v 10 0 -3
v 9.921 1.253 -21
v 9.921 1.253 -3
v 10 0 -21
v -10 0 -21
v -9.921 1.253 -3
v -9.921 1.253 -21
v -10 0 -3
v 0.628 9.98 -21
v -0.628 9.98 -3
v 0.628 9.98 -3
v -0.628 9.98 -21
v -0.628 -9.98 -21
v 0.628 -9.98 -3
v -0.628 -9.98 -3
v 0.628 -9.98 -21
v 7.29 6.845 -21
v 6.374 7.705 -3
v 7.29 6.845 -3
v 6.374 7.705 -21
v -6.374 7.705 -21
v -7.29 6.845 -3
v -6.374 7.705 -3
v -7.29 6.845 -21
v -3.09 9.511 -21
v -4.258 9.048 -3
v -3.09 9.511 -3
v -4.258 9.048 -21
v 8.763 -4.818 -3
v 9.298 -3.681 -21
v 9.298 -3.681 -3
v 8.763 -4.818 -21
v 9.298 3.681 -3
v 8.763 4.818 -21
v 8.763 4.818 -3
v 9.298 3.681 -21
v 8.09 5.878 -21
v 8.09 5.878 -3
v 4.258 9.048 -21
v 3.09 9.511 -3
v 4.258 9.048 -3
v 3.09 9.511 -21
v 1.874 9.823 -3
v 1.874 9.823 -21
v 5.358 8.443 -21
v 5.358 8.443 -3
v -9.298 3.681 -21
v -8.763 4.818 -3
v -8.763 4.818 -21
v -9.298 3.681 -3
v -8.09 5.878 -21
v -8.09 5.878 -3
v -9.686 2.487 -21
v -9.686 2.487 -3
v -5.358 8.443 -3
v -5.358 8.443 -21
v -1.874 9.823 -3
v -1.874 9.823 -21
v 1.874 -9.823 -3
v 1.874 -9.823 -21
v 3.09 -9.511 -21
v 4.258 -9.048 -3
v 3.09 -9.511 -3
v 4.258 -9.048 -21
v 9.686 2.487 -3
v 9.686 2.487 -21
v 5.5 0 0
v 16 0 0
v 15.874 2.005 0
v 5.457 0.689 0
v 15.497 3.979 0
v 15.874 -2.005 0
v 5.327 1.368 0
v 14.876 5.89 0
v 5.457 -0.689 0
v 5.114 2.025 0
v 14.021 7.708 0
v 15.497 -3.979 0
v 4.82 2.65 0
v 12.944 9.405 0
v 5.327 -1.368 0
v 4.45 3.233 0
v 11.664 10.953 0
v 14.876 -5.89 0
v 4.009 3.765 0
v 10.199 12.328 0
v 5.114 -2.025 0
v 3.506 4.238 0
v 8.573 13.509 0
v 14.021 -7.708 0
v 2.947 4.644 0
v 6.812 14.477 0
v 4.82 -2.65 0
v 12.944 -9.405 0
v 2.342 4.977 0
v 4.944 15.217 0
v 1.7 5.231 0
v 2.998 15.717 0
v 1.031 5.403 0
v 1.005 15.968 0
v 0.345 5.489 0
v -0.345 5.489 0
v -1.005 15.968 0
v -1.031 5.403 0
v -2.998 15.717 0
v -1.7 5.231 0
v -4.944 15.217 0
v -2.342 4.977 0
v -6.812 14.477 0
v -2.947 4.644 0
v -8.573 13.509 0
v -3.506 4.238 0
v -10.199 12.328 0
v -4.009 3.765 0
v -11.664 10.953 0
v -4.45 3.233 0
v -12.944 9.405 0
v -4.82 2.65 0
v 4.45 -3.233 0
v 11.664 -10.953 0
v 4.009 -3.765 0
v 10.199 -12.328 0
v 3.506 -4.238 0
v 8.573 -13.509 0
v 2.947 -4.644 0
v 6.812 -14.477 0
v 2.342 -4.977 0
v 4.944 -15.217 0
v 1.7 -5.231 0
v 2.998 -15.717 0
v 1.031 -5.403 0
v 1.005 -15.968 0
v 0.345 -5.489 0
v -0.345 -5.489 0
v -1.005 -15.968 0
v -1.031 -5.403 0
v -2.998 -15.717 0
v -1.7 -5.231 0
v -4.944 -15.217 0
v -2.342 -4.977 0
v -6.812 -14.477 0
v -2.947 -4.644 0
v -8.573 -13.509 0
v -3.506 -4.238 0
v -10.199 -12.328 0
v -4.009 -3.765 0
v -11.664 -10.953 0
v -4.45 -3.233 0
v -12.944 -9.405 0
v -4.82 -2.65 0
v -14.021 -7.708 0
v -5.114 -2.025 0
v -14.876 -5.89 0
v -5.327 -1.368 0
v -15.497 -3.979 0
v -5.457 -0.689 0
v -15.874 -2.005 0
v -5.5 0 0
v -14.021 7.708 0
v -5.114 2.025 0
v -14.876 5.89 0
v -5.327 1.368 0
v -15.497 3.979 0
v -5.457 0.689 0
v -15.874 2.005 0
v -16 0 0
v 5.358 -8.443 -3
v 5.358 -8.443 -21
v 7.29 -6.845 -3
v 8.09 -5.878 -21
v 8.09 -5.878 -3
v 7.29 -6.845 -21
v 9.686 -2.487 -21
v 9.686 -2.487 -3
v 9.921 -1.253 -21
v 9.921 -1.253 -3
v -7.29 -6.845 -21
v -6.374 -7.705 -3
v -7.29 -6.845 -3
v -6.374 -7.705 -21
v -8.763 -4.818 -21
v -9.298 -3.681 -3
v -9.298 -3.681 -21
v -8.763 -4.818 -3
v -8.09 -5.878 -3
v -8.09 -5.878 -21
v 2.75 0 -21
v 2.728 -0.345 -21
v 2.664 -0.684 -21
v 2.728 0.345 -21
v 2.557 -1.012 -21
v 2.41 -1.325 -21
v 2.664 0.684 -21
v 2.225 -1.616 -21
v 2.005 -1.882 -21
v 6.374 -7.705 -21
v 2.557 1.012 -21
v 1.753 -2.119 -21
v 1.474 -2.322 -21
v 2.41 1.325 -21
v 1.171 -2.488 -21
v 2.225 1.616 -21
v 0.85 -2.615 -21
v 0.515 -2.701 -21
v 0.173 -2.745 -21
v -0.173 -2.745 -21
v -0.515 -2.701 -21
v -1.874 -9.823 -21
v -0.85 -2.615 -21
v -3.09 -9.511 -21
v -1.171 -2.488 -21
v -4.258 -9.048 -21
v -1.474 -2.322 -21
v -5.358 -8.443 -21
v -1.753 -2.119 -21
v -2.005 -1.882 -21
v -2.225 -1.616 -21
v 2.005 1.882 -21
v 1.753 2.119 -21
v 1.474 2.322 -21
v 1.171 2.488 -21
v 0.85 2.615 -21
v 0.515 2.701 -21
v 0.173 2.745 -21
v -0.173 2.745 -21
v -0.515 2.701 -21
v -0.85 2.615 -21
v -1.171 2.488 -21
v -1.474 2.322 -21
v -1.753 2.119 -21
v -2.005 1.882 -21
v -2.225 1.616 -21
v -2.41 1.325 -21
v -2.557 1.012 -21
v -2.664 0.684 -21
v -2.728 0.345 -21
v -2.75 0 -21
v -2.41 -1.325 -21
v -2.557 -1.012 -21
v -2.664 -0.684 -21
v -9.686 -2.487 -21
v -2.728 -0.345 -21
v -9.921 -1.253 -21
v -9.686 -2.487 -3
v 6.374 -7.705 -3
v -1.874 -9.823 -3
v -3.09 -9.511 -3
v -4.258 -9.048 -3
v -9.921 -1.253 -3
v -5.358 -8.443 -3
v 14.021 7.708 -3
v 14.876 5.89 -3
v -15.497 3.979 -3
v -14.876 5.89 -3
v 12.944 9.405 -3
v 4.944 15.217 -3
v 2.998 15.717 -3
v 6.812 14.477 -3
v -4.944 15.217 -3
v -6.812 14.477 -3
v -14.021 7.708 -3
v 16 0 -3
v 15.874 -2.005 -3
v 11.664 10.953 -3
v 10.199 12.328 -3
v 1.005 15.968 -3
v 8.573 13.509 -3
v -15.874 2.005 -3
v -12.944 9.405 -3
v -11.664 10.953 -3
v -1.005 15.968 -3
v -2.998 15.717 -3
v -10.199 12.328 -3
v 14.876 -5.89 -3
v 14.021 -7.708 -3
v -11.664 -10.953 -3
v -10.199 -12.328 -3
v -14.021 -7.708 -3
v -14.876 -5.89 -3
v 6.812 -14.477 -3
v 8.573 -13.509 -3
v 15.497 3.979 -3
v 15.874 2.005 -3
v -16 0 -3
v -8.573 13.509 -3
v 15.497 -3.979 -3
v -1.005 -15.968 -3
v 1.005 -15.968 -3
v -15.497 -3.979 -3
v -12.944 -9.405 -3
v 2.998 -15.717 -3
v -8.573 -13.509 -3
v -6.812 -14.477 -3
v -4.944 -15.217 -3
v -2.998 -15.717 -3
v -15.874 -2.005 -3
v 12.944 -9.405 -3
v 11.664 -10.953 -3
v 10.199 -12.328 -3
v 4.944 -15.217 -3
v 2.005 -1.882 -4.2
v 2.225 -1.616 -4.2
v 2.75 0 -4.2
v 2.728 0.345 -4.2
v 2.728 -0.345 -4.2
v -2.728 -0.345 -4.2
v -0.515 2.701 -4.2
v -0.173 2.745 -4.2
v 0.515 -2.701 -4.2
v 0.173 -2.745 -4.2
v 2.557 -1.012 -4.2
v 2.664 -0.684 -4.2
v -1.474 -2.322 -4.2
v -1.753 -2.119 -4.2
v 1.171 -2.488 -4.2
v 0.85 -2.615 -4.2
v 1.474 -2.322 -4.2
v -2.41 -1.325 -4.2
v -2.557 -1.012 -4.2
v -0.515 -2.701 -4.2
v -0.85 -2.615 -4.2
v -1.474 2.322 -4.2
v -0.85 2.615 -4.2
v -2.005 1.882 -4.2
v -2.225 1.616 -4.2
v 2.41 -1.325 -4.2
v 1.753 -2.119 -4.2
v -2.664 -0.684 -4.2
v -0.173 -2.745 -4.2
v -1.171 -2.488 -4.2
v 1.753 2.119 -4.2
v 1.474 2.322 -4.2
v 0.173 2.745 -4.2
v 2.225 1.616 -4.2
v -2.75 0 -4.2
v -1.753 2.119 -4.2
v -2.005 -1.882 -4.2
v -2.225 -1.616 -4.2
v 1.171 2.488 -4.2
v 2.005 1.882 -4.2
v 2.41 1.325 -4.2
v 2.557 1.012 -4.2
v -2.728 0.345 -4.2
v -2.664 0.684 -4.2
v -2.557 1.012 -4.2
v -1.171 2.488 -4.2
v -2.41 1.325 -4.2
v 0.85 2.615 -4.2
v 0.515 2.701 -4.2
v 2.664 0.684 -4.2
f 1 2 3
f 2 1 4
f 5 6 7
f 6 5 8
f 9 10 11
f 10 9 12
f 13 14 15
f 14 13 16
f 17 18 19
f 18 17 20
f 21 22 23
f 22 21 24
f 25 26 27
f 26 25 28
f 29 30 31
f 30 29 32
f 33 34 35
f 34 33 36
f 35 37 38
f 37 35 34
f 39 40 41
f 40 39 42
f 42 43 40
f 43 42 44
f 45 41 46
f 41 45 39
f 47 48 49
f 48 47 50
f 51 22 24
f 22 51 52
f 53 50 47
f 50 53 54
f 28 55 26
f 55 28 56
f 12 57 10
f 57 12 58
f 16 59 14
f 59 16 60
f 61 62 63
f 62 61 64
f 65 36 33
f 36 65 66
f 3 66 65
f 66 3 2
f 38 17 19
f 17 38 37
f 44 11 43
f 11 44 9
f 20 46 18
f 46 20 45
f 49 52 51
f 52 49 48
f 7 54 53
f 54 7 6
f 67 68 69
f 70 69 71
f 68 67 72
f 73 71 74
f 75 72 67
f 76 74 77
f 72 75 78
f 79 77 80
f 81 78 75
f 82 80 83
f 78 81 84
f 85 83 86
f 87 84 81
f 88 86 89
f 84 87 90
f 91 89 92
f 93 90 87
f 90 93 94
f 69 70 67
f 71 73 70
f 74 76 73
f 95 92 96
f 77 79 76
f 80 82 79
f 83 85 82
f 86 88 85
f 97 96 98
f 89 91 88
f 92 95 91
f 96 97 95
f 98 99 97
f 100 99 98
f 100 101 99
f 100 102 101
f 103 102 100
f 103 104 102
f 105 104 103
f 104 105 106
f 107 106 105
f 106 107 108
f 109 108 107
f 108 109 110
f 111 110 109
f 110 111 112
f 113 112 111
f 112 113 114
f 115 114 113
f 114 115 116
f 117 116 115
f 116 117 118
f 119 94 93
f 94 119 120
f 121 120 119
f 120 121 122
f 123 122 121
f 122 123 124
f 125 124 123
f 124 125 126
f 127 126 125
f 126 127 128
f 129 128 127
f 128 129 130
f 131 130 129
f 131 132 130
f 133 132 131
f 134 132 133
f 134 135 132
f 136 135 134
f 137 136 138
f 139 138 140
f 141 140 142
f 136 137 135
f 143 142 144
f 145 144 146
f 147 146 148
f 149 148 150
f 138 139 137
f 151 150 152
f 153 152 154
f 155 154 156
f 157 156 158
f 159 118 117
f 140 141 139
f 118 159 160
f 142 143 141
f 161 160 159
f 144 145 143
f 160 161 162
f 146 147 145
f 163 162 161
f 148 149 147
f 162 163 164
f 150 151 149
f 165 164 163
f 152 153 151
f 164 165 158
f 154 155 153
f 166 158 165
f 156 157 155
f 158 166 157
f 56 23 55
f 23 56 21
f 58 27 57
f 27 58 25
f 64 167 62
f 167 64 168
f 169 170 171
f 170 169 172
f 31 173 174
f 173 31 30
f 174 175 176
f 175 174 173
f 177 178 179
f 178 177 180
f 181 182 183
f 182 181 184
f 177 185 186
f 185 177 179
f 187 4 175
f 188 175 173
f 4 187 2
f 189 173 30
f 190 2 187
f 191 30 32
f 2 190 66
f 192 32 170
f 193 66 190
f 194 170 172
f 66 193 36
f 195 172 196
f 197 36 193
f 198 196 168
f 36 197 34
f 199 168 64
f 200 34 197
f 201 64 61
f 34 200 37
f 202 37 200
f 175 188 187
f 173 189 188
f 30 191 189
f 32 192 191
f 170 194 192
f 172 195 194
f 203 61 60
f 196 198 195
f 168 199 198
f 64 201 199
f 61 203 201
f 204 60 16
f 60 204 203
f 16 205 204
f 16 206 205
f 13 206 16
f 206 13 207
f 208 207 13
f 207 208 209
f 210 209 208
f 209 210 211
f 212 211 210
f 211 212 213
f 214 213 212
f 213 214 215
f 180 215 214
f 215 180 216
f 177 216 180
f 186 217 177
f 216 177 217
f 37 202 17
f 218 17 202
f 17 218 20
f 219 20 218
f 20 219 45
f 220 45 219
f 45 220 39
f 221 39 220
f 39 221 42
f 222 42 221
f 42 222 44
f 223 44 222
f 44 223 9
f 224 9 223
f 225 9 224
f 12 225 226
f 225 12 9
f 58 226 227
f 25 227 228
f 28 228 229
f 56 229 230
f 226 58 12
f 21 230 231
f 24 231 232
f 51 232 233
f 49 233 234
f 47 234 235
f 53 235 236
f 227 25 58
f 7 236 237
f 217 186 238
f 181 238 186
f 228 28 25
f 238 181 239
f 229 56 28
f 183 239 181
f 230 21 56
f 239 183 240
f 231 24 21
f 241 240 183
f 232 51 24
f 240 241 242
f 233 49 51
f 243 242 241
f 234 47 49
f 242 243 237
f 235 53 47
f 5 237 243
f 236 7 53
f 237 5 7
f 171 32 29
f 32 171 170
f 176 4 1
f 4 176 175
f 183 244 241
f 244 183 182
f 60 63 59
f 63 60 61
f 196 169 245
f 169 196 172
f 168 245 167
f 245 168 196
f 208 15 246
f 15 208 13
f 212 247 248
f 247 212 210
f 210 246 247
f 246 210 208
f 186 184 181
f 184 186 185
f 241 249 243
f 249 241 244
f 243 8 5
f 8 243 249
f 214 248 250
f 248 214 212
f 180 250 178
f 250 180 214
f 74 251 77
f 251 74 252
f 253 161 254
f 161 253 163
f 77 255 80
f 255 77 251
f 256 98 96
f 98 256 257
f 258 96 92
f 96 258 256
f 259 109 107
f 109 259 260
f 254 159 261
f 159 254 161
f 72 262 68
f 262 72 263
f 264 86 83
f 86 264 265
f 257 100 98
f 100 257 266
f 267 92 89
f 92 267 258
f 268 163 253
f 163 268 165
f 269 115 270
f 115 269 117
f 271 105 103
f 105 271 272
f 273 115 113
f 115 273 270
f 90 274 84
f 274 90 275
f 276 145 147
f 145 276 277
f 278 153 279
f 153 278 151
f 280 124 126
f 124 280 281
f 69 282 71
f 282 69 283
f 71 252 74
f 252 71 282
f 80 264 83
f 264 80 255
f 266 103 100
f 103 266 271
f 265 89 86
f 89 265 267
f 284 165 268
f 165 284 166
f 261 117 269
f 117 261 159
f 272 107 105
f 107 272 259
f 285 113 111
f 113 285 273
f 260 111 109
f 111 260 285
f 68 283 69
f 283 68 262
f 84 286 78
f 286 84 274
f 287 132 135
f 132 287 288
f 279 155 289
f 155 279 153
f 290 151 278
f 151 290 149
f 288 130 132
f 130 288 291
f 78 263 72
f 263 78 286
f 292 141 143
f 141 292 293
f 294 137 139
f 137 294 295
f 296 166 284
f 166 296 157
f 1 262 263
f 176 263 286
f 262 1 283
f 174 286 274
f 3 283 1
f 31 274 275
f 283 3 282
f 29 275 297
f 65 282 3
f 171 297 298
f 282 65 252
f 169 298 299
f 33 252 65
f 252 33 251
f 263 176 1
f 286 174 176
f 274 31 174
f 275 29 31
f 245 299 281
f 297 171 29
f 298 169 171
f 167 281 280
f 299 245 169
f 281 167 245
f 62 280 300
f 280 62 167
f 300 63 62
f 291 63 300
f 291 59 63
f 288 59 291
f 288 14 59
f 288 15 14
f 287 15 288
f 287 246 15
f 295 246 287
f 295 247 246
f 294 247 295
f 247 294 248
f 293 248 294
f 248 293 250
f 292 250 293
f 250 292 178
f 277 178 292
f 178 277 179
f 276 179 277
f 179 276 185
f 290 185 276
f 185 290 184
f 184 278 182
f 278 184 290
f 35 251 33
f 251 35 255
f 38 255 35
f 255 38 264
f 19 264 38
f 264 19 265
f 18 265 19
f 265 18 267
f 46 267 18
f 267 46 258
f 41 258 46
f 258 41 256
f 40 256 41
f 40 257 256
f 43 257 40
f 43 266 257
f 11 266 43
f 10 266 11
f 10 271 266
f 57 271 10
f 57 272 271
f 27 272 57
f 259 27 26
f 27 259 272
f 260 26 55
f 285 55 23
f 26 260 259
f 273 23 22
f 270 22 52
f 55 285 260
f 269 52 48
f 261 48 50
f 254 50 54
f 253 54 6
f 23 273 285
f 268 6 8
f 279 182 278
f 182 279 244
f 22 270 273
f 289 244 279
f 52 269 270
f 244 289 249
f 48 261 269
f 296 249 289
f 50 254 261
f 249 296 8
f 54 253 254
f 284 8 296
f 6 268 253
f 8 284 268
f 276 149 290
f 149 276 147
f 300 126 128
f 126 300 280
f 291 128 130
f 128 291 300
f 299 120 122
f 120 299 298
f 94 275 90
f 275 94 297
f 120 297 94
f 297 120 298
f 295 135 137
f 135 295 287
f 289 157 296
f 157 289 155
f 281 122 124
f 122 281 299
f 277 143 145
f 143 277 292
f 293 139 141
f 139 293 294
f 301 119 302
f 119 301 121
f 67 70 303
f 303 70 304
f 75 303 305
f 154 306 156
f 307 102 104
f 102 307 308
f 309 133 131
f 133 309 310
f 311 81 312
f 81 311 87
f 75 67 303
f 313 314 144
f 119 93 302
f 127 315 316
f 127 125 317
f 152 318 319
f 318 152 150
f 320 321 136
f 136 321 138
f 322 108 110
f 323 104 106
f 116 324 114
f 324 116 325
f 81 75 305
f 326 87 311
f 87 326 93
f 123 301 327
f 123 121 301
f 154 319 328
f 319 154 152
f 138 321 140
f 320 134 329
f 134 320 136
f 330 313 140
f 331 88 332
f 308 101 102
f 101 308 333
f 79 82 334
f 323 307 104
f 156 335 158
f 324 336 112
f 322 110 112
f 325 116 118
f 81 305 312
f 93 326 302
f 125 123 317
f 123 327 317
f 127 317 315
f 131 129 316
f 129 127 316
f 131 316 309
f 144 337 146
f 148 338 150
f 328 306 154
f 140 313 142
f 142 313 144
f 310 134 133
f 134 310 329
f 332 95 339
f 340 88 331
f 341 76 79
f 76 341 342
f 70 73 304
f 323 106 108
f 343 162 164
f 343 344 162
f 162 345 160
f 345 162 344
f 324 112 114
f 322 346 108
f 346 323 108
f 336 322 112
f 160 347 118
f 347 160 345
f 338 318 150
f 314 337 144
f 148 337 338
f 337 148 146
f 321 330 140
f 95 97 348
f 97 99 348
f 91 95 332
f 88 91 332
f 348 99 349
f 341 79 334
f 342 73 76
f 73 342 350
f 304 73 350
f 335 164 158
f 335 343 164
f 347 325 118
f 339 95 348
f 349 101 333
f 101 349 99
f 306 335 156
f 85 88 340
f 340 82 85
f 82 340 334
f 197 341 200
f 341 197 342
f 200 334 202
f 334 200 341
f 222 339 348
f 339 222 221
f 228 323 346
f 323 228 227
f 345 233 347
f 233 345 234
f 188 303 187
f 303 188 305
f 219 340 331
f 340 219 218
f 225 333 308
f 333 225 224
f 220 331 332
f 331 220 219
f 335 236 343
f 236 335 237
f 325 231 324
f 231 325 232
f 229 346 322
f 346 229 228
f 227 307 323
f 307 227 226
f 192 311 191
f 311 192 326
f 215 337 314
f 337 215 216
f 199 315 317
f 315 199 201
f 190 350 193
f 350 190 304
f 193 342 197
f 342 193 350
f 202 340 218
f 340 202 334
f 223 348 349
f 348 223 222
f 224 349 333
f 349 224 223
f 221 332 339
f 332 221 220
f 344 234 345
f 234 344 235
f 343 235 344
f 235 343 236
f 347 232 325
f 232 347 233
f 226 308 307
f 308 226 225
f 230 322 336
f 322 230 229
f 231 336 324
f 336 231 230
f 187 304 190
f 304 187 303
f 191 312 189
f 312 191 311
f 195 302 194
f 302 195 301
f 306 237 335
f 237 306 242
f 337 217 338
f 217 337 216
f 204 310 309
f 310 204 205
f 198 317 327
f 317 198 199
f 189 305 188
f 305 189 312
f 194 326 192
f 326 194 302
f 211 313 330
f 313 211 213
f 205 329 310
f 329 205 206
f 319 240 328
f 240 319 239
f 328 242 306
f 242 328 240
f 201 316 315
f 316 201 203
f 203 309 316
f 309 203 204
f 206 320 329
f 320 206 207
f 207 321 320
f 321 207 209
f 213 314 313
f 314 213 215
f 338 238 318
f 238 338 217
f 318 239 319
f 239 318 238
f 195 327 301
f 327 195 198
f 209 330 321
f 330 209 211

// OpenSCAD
$fn = 50;


difference() {
	union() {
		translate(v = [0, 0, -21.0000000000]) {
			cylinder(h = 21, r = 10.0000000000);
		}
		translate(v = [0, 0, -3.0000000000]) {
			cylinder(h = 3, r = 16.0000000000);
		}
	}
	union() {
		translate(v = [0, 0, 0]) {
			rotate(a = [0, 0, 0]) {
				difference() {
					union() {
						#translate(v = [0, 0, -21.0000000000]) {
							cylinder(h = 21, r = 2.2500000000);
						}
						#translate(v = [0, 0, -4.2000000000]) {
							cylinder(h = 4.2000000000, r = 10.0000000000, r1 = 2.7500000000, r2 = 5.5000000000);
						}
						#translate(v = [0, 0, -21.0000000000]) {
							cylinder(h = 21, r = 2.7500000000);
						}
						#translate(v = [0, 0, -21.0000000000]) {
							cylinder(h = 21, r = 2.2500000000);
						}
					}
					union();
				}
			}
		}
	}
}
